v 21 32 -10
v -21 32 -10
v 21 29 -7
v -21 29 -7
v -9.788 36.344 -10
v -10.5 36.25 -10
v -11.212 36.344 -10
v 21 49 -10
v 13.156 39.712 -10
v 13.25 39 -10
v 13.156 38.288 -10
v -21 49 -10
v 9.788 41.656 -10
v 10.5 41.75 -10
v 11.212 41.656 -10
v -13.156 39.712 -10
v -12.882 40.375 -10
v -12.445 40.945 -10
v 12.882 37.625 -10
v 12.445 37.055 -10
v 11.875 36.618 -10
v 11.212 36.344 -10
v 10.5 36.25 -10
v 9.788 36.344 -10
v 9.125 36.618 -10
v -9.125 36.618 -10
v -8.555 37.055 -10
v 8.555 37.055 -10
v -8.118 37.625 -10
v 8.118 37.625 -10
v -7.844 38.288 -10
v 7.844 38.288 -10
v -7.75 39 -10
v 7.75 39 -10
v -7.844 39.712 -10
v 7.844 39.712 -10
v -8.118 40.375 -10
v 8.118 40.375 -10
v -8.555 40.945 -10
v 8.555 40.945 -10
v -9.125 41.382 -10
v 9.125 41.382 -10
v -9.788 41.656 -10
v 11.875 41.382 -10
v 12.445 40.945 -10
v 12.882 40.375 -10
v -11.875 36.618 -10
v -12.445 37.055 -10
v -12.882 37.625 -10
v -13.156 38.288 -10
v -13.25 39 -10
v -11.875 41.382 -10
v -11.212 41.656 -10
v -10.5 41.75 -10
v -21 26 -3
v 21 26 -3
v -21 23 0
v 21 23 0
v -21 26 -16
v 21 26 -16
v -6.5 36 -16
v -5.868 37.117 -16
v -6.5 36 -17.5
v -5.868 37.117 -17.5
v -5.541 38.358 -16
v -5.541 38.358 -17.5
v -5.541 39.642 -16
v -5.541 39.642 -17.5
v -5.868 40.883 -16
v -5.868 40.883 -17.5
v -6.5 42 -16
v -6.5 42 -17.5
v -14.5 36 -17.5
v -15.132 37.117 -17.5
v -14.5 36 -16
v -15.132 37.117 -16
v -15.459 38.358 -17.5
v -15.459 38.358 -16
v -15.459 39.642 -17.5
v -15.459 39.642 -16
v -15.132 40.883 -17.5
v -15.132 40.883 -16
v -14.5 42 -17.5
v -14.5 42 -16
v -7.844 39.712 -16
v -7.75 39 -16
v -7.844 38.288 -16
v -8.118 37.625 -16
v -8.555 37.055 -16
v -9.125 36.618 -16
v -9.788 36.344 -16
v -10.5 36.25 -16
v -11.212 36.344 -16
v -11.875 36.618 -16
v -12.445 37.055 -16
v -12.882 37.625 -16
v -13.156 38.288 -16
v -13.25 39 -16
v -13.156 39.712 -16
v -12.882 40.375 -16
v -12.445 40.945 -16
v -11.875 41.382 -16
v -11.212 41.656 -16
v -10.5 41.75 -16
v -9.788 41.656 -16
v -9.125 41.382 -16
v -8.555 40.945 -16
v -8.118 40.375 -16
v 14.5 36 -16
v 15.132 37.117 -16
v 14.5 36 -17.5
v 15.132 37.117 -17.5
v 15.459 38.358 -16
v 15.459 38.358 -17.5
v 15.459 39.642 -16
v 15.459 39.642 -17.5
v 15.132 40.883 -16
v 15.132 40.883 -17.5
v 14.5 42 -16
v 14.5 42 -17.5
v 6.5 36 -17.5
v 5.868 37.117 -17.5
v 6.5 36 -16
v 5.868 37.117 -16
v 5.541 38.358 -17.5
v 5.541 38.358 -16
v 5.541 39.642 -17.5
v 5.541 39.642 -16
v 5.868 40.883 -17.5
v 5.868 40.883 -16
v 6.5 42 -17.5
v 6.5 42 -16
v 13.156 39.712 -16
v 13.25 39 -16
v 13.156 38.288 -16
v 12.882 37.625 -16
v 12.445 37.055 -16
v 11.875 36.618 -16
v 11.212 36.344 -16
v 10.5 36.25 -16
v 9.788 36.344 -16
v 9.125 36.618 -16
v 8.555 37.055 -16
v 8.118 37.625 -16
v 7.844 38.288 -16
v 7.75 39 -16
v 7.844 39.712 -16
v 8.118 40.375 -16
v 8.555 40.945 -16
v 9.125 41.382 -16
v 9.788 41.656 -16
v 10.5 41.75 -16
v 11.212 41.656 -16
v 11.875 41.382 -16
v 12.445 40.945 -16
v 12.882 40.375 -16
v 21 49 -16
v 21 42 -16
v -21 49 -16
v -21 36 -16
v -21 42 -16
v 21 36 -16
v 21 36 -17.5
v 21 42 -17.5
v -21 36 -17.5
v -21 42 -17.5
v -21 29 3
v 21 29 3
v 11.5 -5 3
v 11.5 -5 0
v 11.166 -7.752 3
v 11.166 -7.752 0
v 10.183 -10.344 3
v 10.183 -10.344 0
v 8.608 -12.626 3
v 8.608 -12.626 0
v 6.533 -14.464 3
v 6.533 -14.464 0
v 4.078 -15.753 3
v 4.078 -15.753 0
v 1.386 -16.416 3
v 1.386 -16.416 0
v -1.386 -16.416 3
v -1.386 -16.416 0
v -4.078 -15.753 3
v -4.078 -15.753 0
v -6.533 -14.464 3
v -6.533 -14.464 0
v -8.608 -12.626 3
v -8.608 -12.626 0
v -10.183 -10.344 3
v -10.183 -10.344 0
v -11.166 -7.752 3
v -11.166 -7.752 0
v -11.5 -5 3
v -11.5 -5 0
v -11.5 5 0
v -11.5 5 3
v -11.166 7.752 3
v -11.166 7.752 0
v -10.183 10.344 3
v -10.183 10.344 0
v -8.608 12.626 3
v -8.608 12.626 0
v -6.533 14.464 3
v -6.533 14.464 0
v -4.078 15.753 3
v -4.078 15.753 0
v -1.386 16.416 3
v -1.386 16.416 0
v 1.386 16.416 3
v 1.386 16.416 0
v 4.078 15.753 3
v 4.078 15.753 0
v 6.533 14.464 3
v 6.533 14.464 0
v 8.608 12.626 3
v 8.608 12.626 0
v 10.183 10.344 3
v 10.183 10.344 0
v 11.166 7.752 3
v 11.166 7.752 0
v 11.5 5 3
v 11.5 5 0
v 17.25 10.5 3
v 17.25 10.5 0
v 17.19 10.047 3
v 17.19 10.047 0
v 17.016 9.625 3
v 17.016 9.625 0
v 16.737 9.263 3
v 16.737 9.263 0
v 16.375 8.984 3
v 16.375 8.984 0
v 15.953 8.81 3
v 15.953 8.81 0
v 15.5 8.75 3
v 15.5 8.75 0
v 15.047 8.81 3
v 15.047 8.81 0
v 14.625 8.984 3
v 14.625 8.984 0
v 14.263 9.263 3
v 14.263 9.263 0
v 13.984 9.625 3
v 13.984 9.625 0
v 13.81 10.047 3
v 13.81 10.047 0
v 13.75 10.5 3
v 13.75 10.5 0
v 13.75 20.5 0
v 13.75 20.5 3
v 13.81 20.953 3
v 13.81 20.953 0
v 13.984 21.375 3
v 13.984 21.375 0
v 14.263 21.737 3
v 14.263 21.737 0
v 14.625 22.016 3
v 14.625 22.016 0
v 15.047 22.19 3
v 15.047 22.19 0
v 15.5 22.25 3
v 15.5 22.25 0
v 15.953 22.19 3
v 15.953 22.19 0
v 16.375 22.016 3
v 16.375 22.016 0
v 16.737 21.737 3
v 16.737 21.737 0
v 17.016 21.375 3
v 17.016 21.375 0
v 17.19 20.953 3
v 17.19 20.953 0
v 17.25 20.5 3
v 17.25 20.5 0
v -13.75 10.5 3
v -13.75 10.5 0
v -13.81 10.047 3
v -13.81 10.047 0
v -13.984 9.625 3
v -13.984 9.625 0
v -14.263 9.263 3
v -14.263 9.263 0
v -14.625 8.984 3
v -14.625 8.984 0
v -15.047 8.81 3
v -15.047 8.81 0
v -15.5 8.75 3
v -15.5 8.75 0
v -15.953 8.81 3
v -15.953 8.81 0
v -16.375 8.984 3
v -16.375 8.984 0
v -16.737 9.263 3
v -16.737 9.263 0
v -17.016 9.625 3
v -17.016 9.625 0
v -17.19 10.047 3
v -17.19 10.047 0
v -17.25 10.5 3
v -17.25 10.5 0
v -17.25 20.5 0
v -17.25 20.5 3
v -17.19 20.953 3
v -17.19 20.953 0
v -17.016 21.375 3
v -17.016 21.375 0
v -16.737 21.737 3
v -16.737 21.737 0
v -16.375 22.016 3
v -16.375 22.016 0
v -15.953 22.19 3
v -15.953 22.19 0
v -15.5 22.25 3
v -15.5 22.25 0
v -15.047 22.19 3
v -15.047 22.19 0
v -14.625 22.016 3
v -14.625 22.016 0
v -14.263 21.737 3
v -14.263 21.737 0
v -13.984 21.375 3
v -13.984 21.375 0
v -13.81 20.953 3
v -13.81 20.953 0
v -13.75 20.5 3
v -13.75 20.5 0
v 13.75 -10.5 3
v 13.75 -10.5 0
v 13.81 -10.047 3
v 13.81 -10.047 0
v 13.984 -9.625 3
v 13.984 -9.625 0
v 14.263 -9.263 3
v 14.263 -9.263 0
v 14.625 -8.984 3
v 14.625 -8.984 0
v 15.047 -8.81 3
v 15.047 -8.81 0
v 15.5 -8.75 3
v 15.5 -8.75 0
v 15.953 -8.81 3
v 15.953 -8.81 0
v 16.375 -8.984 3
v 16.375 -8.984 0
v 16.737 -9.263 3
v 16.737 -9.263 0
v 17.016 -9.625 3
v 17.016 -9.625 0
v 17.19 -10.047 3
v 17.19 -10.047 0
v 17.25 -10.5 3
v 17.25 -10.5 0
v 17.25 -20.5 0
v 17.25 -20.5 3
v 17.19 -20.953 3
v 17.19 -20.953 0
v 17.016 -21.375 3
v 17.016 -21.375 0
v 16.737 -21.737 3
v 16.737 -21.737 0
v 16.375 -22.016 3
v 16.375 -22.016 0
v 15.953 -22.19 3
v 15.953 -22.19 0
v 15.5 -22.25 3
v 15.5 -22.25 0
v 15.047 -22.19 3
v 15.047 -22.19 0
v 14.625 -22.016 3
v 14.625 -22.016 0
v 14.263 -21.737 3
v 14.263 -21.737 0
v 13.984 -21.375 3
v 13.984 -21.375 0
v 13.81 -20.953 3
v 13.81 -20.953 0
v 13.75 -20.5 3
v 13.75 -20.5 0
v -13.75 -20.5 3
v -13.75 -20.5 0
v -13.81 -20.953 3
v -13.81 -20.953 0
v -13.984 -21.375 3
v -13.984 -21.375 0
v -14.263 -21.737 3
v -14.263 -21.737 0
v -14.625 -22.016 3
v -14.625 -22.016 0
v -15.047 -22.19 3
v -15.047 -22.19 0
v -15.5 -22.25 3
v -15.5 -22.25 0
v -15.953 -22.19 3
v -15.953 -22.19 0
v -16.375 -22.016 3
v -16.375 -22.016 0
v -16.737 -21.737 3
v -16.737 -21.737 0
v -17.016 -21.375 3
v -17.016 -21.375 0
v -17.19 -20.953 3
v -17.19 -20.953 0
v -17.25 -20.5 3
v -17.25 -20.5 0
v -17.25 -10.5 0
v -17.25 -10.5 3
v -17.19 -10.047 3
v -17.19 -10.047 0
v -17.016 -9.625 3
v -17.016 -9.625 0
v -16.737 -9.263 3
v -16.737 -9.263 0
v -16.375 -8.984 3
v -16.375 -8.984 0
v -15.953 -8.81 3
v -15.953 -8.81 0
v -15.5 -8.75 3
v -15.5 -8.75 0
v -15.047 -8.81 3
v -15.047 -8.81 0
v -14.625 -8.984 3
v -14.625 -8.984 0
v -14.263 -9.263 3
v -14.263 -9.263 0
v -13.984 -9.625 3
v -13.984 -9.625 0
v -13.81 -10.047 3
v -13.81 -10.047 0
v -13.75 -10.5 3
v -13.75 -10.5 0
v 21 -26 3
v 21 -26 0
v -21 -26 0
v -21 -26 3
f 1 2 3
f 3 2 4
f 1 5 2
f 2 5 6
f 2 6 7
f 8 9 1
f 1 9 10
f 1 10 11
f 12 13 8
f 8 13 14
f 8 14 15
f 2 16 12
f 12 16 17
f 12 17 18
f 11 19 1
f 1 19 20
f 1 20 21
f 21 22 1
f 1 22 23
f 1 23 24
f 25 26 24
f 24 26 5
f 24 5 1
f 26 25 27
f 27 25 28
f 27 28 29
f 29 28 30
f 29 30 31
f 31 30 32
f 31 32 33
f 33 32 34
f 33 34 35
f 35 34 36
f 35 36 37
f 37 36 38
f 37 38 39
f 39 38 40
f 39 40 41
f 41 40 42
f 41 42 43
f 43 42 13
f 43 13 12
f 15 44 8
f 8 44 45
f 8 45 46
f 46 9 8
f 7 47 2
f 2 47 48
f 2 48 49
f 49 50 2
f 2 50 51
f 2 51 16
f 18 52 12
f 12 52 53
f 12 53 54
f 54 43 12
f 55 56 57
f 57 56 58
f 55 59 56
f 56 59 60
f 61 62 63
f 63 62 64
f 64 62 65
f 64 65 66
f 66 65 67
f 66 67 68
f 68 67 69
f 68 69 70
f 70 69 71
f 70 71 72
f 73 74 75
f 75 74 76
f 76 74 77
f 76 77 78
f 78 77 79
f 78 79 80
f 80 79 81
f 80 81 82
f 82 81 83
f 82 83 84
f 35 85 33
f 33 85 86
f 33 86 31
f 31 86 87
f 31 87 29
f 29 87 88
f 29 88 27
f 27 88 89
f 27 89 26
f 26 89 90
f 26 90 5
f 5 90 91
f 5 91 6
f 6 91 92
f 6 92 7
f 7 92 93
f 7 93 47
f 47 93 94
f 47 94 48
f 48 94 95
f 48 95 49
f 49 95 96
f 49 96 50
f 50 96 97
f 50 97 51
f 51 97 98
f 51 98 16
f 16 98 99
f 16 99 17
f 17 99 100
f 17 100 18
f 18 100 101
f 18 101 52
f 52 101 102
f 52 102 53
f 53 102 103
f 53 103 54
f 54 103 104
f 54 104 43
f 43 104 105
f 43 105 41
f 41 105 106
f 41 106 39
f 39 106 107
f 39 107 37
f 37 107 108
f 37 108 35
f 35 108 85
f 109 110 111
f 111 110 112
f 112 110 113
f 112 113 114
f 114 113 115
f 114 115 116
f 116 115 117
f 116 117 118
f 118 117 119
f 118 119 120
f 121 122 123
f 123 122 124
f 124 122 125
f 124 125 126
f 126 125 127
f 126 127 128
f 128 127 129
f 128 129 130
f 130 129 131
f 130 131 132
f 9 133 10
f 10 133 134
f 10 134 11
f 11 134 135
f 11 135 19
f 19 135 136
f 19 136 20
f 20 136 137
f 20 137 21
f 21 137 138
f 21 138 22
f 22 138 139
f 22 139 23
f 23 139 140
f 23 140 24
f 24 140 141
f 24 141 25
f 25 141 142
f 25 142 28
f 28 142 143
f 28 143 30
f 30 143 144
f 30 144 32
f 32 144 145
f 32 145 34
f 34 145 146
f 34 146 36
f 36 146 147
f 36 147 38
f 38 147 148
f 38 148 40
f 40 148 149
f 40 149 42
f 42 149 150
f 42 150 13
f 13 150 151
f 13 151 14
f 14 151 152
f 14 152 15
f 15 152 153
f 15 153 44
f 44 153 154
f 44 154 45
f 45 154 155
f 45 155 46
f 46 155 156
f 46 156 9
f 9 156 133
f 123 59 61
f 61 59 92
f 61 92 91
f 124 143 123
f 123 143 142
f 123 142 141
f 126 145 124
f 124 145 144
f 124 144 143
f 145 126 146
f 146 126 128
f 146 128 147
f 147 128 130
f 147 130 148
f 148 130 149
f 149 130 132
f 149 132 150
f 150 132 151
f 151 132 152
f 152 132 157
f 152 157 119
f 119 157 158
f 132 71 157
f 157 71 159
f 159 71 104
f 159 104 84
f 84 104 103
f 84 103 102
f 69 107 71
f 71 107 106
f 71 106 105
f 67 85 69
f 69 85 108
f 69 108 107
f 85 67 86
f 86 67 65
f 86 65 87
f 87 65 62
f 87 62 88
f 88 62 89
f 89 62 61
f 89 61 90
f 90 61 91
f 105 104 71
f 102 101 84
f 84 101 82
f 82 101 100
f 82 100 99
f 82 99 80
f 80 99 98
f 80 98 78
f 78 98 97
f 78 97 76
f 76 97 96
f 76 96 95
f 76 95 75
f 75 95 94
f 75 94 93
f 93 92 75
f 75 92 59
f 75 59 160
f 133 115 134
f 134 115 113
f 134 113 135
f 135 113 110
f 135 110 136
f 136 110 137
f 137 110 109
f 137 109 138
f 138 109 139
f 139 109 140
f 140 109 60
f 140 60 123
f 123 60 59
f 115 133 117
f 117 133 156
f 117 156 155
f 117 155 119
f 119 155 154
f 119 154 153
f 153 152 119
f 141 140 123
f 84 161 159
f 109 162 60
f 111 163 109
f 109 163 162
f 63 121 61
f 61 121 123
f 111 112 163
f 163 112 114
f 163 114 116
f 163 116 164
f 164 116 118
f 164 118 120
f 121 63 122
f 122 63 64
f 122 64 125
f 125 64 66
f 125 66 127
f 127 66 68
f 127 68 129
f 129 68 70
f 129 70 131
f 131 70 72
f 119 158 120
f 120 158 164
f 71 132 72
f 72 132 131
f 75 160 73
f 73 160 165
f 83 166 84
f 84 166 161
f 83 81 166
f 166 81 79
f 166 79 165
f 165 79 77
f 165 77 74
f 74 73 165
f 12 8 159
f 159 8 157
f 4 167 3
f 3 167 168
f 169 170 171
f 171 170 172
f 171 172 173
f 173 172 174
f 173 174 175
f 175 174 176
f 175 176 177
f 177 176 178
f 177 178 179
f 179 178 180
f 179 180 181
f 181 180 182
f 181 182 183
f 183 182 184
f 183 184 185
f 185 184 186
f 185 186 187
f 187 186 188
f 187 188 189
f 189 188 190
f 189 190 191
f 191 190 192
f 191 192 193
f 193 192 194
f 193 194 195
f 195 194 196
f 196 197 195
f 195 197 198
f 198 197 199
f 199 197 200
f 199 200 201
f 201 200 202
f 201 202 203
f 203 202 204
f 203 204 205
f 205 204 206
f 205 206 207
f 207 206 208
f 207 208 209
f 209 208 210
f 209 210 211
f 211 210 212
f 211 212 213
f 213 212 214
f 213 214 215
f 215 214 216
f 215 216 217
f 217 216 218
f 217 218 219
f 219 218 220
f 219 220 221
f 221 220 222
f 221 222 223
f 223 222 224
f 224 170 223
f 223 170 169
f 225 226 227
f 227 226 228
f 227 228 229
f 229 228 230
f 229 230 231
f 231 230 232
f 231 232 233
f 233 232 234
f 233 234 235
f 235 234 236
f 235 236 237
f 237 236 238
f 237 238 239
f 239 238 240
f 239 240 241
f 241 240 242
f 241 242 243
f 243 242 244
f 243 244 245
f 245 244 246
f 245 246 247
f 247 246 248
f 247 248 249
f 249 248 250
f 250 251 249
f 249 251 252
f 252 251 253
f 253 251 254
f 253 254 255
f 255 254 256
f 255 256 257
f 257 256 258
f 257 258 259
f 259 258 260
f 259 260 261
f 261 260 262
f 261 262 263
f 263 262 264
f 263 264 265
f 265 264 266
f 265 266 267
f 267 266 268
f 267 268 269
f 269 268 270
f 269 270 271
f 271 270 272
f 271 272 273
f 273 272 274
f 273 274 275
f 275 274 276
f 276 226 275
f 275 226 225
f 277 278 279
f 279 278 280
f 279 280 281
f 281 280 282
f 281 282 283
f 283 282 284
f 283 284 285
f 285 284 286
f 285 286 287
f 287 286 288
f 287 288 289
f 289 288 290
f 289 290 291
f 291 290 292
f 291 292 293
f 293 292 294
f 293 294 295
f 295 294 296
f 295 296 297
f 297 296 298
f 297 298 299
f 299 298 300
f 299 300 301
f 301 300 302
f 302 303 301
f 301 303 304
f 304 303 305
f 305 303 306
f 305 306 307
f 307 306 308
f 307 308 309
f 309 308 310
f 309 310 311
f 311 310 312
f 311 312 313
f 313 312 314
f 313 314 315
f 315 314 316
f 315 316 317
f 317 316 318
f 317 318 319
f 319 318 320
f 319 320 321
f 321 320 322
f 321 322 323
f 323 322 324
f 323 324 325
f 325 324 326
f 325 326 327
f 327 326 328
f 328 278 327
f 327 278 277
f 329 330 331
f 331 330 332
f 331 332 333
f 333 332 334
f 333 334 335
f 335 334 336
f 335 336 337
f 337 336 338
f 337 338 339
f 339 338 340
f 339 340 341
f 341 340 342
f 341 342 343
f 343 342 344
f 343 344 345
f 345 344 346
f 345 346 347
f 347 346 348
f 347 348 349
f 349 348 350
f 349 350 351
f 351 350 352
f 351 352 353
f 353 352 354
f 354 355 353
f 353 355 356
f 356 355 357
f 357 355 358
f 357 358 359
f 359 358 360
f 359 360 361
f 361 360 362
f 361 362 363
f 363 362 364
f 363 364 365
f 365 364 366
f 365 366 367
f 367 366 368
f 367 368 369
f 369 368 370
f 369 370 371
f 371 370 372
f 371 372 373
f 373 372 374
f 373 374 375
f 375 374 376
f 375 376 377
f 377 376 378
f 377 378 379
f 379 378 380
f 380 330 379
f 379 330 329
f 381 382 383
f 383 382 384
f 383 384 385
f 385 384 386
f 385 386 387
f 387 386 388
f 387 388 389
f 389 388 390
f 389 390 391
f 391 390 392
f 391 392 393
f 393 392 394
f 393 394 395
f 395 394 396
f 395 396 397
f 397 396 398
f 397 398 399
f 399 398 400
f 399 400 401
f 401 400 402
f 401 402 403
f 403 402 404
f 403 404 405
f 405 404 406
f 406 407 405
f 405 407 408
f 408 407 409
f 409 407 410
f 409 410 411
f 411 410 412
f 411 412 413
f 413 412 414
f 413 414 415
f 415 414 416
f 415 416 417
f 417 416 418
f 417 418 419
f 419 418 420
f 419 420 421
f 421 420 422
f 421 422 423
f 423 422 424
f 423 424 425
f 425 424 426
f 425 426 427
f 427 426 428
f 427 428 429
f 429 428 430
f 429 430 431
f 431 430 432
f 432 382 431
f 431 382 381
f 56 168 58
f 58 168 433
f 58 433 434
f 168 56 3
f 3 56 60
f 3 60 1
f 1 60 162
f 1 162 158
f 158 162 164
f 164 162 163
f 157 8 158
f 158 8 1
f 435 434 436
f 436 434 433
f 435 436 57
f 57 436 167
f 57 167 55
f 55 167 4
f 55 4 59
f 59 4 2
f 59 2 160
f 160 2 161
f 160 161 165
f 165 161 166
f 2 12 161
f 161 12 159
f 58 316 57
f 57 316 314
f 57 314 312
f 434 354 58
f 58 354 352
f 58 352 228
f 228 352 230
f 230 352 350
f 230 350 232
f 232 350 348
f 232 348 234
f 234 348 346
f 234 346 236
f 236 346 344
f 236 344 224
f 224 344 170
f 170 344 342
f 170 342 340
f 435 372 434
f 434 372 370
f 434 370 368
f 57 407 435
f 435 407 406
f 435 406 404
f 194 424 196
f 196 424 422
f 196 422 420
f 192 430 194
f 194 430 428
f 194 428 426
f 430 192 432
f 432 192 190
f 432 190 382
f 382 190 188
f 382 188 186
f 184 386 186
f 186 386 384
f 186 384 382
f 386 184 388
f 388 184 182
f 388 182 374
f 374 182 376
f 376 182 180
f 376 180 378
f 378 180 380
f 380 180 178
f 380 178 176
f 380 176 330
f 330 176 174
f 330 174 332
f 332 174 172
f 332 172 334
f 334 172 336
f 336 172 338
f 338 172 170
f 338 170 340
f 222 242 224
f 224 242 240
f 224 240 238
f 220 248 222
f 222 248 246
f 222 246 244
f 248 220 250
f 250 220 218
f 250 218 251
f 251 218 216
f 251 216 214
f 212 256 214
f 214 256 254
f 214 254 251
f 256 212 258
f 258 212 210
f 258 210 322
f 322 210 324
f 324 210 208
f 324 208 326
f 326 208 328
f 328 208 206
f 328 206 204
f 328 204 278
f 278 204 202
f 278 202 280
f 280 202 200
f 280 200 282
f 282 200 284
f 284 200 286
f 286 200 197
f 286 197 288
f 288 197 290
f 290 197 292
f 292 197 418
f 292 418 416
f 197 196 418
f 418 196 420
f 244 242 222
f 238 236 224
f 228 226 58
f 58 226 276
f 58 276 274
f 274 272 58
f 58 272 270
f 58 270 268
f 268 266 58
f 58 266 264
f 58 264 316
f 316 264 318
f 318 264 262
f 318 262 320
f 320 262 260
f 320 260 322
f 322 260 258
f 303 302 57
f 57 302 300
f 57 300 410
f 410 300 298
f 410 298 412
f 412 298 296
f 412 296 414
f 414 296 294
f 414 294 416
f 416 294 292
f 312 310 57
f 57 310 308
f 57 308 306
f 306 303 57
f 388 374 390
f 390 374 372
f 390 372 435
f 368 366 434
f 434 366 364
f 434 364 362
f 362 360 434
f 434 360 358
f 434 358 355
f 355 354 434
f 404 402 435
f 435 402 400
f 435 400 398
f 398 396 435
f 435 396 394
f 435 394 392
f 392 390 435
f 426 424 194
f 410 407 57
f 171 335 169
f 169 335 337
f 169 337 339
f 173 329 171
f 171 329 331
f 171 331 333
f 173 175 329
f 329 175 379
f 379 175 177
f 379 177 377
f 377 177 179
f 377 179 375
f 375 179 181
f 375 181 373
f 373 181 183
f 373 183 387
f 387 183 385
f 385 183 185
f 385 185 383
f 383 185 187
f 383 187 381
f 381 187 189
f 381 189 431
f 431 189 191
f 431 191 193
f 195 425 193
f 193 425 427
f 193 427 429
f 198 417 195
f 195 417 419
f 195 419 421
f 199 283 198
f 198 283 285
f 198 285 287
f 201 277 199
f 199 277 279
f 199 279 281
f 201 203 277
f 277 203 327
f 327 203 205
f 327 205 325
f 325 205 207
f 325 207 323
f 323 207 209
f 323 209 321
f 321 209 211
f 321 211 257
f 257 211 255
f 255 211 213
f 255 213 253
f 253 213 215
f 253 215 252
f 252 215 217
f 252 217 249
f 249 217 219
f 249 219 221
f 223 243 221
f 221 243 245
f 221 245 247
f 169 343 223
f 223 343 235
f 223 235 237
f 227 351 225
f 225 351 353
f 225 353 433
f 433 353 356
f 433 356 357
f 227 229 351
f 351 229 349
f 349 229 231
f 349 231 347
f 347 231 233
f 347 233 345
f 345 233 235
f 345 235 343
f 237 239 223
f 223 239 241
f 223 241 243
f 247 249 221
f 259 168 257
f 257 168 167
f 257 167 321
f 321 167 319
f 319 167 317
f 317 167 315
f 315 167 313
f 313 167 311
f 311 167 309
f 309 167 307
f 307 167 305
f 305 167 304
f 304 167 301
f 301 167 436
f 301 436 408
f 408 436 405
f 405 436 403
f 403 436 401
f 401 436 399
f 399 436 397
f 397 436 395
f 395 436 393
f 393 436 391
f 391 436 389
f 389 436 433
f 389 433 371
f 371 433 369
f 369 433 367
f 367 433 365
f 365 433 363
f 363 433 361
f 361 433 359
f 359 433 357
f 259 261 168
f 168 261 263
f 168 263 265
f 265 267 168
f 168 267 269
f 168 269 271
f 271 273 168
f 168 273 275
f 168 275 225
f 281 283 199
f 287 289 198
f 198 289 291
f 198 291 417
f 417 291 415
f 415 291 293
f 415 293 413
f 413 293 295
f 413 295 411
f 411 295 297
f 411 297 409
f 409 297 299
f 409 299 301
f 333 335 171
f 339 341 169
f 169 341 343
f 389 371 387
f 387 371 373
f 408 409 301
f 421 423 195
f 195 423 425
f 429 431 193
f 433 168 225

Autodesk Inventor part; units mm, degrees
ref_plane "YZ Plane" through (0, 0, 0) normal (1, 0, 0) x (0, 1, 0)
ref_plane "XZ Plane" through (0, 0, 0) normal (0, 1, 0) x (-1, 0, 0)
ref_plane "XY Plane" through (0, 0, 0) normal (0, 0, 1) x (1, 0, 0)
sketch "Sketch1" plane through (0, 0, 0) normal (0, 0, 1) x (1, 0, 0)
  line L0 (-21, 26) -> (21, 26)
  line L1 (21, 26) -> (21, -26)
  line L2 (21, -26) -> (-21, -26)
  line L3 (-21, -26) -> (-21, 26)
  line L4 (-21, 26) -> (21, -26) construction
  line L5 (21, 26) -> (-21, -26) construction
  line L6 (-15.5, 20.5) -> (15.5, -20.5) construction
  line L7 (15.5, 20.5) -> (-15.5, -20.5) construction
  line L8 (-11.5, -5) -> (-11.5, 5)
  line L9 (11.5, -5) -> (11.5, 5)
  arc A0 (4.507, 5.58) -> (4.2877, 5.6708) centre (0, -5) ccw
  arc A1 (-4.2877, 5.6708) -> (-4.507, 5.58) centre (0, -5) ccw
  arc A2 (-11.5, -5) -> (11.5, -5) centre (0, -5) ccw
  arc A3 (-4.507, -5.58) -> (-4.2877, -5.6708) centre (0, 5) ccw
  arc A4 (4.2877, -5.6708) -> (4.507, -5.58) centre (0, 5) ccw
  arc A5 (11.5, 5) -> (-11.5, 5) centre (0, 5) ccw
  line L10 (-15.5, -20.5) -> (-15.5, -10.5)
  arc A6 (-13.75, -10.5) -> (-17.25, -10.5) centre (-15.5, -10.5) ccw
  line L11 (-13.75, -20.5) -> (-13.75, -10.5)
  line L12 (-17.25, -10.5) -> (-17.25, -20.5)
  arc A7 (-17.25, -20.5) -> (-13.75, -20.5) centre (-15.5, -20.5) ccw
  arc A8 (17.25, -10.5) -> (13.75, -10.5) centre (15.5, -10.5) ccw
  line L13 (17.25, -20.5) -> (17.25, -10.5)
  line L14 (13.75, -10.5) -> (13.75, -20.5)
  arc A9 (13.75, -20.5) -> (17.25, -20.5) centre (15.5, -20.5) ccw
  arc A10 (-13.75, 20.5) -> (-17.25, 20.5) centre (-15.5, 20.5) ccw
  line L15 (-13.75, 10.5) -> (-13.75, 20.5)
  line L16 (-17.25, 20.5) -> (-17.25, 10.5)
  arc A11 (-17.25, 10.5) -> (-13.75, 10.5) centre (-15.5, 10.5) ccw
  arc A12 (17.25, 20.5) -> (13.75, 20.5) centre (15.5, 20.5) ccw
  line L17 (17.25, 10.5) -> (17.25, 20.5)
  line L18 (13.75, 20.5) -> (13.75, 10.5)
  arc A13 (13.75, 10.5) -> (17.25, 10.5) centre (15.5, 10.5) ccw
  point P0 (0, 0)
  dimension "d0" = 42
  dimension "d1" = 52
  dimension "d2" = 31
  dimension "d3" = 41
  dimension "d9" = 5
  dimension "d10" = 5
  dimension "d12" = 10
  dimension "d13" = 3.5
  dimension "d14" = 3.5
  dimension "d15" = 3.5
  dimension "d16" = 3.5
  dimension "d17" = 20.5
  dimension "d18" = 20.5
  dimension "d19" = 20.5
  dimension "d20" = 20.5
extrude "Extrusion1" add sketch "Sketch1" along normal blind 3
sketch "Sketch2" plane through (-21, 26, 0) normal (0, 1, 0) x (1, 0, 0)
  line L0 (42, -3) -> (0, -3) projected
  line L1 (0, -3) -> (42, -3)
  line L2 (42, -3) -> (42, 10)
  line L3 (42, 10) -> (0, 10)
  line L4 (0, 10) -> (0, -3)
  point P0 (21, 0)
  dimension "d23" = 13
extrude "Extrusion2" add sketch "Sketch2" along normal blind 3
sketch "Sketch3" plane through (21, 26, -10) normal (0, 0, -1) x (-1, 0, 0)
  line L0 (42, 0) -> (0, 0) projected
  line L1 (42, 0) -> (0, 0)
  line L2 (0, 0) -> (0, 23)
  line L3 (0, 23) -> (42, 23)
  line L4 (42, 23) -> (42, 0)
  point P0 (21, -26)
  dimension "d26" = 23
extrude "Extrusion3" add sketch "Sketch3" along normal blind 6
sketch "Sketch6" plane through (21, 26, -10) normal (0, 0, 1) x (1, 0, 0)
  point P0 (-21, -26)
  point P1 (-10.5, 13)
  point P2 (-31.5, 13)
sketch "Sketch7" plane through (21, 26, -16) normal (0, 0, -1) x (-1, 0, 0)
  circle A0 centre (31.5, 13) radius 2.75 projected
  circle A1 centre (10.5, 13) radius 2.75 projected
  line L0 (42, 10) -> (0, 10)
  line L1 (42, 16) -> (0, 16)
  line L2 (42, 0) -> (42, 23) projected
  line L3 (42, 0) -> (42, 23)
  line L4 (0, 0) -> (42, 0) projected
  line L5 (0, 3) -> (0, 23) projected
  line L6 (0, 0) -> (0, 23)
  point P0 (21, -26)
extrude "Extrusion4" add sketch "Sketch7" along normal blind 1.5 contours L0 L5 L1 L2
sketch "Sketch8" plane through (21, 26, -17.5) normal (0, 0, -1) x (-1, 0, 0)
  circle A0 centre (31.5, 13) radius 2.75 projected
  circle A1 centre (10.5, 13) radius 2.75 projected
  point P0 (21, -26)
hole "Hole2" at (-10.5, 39, -17.5) at (10.5, 39, -17.5) direction (0, 0, 1) diameter 5.5 end through all counterbore diameter 10 counterbore depth 1.5
chamfer "Chamfer2" distance 3 angle 45 2 edges at (0, 26, 0) (0, 29, -10)
properties part number "Suporte Z Motor"
